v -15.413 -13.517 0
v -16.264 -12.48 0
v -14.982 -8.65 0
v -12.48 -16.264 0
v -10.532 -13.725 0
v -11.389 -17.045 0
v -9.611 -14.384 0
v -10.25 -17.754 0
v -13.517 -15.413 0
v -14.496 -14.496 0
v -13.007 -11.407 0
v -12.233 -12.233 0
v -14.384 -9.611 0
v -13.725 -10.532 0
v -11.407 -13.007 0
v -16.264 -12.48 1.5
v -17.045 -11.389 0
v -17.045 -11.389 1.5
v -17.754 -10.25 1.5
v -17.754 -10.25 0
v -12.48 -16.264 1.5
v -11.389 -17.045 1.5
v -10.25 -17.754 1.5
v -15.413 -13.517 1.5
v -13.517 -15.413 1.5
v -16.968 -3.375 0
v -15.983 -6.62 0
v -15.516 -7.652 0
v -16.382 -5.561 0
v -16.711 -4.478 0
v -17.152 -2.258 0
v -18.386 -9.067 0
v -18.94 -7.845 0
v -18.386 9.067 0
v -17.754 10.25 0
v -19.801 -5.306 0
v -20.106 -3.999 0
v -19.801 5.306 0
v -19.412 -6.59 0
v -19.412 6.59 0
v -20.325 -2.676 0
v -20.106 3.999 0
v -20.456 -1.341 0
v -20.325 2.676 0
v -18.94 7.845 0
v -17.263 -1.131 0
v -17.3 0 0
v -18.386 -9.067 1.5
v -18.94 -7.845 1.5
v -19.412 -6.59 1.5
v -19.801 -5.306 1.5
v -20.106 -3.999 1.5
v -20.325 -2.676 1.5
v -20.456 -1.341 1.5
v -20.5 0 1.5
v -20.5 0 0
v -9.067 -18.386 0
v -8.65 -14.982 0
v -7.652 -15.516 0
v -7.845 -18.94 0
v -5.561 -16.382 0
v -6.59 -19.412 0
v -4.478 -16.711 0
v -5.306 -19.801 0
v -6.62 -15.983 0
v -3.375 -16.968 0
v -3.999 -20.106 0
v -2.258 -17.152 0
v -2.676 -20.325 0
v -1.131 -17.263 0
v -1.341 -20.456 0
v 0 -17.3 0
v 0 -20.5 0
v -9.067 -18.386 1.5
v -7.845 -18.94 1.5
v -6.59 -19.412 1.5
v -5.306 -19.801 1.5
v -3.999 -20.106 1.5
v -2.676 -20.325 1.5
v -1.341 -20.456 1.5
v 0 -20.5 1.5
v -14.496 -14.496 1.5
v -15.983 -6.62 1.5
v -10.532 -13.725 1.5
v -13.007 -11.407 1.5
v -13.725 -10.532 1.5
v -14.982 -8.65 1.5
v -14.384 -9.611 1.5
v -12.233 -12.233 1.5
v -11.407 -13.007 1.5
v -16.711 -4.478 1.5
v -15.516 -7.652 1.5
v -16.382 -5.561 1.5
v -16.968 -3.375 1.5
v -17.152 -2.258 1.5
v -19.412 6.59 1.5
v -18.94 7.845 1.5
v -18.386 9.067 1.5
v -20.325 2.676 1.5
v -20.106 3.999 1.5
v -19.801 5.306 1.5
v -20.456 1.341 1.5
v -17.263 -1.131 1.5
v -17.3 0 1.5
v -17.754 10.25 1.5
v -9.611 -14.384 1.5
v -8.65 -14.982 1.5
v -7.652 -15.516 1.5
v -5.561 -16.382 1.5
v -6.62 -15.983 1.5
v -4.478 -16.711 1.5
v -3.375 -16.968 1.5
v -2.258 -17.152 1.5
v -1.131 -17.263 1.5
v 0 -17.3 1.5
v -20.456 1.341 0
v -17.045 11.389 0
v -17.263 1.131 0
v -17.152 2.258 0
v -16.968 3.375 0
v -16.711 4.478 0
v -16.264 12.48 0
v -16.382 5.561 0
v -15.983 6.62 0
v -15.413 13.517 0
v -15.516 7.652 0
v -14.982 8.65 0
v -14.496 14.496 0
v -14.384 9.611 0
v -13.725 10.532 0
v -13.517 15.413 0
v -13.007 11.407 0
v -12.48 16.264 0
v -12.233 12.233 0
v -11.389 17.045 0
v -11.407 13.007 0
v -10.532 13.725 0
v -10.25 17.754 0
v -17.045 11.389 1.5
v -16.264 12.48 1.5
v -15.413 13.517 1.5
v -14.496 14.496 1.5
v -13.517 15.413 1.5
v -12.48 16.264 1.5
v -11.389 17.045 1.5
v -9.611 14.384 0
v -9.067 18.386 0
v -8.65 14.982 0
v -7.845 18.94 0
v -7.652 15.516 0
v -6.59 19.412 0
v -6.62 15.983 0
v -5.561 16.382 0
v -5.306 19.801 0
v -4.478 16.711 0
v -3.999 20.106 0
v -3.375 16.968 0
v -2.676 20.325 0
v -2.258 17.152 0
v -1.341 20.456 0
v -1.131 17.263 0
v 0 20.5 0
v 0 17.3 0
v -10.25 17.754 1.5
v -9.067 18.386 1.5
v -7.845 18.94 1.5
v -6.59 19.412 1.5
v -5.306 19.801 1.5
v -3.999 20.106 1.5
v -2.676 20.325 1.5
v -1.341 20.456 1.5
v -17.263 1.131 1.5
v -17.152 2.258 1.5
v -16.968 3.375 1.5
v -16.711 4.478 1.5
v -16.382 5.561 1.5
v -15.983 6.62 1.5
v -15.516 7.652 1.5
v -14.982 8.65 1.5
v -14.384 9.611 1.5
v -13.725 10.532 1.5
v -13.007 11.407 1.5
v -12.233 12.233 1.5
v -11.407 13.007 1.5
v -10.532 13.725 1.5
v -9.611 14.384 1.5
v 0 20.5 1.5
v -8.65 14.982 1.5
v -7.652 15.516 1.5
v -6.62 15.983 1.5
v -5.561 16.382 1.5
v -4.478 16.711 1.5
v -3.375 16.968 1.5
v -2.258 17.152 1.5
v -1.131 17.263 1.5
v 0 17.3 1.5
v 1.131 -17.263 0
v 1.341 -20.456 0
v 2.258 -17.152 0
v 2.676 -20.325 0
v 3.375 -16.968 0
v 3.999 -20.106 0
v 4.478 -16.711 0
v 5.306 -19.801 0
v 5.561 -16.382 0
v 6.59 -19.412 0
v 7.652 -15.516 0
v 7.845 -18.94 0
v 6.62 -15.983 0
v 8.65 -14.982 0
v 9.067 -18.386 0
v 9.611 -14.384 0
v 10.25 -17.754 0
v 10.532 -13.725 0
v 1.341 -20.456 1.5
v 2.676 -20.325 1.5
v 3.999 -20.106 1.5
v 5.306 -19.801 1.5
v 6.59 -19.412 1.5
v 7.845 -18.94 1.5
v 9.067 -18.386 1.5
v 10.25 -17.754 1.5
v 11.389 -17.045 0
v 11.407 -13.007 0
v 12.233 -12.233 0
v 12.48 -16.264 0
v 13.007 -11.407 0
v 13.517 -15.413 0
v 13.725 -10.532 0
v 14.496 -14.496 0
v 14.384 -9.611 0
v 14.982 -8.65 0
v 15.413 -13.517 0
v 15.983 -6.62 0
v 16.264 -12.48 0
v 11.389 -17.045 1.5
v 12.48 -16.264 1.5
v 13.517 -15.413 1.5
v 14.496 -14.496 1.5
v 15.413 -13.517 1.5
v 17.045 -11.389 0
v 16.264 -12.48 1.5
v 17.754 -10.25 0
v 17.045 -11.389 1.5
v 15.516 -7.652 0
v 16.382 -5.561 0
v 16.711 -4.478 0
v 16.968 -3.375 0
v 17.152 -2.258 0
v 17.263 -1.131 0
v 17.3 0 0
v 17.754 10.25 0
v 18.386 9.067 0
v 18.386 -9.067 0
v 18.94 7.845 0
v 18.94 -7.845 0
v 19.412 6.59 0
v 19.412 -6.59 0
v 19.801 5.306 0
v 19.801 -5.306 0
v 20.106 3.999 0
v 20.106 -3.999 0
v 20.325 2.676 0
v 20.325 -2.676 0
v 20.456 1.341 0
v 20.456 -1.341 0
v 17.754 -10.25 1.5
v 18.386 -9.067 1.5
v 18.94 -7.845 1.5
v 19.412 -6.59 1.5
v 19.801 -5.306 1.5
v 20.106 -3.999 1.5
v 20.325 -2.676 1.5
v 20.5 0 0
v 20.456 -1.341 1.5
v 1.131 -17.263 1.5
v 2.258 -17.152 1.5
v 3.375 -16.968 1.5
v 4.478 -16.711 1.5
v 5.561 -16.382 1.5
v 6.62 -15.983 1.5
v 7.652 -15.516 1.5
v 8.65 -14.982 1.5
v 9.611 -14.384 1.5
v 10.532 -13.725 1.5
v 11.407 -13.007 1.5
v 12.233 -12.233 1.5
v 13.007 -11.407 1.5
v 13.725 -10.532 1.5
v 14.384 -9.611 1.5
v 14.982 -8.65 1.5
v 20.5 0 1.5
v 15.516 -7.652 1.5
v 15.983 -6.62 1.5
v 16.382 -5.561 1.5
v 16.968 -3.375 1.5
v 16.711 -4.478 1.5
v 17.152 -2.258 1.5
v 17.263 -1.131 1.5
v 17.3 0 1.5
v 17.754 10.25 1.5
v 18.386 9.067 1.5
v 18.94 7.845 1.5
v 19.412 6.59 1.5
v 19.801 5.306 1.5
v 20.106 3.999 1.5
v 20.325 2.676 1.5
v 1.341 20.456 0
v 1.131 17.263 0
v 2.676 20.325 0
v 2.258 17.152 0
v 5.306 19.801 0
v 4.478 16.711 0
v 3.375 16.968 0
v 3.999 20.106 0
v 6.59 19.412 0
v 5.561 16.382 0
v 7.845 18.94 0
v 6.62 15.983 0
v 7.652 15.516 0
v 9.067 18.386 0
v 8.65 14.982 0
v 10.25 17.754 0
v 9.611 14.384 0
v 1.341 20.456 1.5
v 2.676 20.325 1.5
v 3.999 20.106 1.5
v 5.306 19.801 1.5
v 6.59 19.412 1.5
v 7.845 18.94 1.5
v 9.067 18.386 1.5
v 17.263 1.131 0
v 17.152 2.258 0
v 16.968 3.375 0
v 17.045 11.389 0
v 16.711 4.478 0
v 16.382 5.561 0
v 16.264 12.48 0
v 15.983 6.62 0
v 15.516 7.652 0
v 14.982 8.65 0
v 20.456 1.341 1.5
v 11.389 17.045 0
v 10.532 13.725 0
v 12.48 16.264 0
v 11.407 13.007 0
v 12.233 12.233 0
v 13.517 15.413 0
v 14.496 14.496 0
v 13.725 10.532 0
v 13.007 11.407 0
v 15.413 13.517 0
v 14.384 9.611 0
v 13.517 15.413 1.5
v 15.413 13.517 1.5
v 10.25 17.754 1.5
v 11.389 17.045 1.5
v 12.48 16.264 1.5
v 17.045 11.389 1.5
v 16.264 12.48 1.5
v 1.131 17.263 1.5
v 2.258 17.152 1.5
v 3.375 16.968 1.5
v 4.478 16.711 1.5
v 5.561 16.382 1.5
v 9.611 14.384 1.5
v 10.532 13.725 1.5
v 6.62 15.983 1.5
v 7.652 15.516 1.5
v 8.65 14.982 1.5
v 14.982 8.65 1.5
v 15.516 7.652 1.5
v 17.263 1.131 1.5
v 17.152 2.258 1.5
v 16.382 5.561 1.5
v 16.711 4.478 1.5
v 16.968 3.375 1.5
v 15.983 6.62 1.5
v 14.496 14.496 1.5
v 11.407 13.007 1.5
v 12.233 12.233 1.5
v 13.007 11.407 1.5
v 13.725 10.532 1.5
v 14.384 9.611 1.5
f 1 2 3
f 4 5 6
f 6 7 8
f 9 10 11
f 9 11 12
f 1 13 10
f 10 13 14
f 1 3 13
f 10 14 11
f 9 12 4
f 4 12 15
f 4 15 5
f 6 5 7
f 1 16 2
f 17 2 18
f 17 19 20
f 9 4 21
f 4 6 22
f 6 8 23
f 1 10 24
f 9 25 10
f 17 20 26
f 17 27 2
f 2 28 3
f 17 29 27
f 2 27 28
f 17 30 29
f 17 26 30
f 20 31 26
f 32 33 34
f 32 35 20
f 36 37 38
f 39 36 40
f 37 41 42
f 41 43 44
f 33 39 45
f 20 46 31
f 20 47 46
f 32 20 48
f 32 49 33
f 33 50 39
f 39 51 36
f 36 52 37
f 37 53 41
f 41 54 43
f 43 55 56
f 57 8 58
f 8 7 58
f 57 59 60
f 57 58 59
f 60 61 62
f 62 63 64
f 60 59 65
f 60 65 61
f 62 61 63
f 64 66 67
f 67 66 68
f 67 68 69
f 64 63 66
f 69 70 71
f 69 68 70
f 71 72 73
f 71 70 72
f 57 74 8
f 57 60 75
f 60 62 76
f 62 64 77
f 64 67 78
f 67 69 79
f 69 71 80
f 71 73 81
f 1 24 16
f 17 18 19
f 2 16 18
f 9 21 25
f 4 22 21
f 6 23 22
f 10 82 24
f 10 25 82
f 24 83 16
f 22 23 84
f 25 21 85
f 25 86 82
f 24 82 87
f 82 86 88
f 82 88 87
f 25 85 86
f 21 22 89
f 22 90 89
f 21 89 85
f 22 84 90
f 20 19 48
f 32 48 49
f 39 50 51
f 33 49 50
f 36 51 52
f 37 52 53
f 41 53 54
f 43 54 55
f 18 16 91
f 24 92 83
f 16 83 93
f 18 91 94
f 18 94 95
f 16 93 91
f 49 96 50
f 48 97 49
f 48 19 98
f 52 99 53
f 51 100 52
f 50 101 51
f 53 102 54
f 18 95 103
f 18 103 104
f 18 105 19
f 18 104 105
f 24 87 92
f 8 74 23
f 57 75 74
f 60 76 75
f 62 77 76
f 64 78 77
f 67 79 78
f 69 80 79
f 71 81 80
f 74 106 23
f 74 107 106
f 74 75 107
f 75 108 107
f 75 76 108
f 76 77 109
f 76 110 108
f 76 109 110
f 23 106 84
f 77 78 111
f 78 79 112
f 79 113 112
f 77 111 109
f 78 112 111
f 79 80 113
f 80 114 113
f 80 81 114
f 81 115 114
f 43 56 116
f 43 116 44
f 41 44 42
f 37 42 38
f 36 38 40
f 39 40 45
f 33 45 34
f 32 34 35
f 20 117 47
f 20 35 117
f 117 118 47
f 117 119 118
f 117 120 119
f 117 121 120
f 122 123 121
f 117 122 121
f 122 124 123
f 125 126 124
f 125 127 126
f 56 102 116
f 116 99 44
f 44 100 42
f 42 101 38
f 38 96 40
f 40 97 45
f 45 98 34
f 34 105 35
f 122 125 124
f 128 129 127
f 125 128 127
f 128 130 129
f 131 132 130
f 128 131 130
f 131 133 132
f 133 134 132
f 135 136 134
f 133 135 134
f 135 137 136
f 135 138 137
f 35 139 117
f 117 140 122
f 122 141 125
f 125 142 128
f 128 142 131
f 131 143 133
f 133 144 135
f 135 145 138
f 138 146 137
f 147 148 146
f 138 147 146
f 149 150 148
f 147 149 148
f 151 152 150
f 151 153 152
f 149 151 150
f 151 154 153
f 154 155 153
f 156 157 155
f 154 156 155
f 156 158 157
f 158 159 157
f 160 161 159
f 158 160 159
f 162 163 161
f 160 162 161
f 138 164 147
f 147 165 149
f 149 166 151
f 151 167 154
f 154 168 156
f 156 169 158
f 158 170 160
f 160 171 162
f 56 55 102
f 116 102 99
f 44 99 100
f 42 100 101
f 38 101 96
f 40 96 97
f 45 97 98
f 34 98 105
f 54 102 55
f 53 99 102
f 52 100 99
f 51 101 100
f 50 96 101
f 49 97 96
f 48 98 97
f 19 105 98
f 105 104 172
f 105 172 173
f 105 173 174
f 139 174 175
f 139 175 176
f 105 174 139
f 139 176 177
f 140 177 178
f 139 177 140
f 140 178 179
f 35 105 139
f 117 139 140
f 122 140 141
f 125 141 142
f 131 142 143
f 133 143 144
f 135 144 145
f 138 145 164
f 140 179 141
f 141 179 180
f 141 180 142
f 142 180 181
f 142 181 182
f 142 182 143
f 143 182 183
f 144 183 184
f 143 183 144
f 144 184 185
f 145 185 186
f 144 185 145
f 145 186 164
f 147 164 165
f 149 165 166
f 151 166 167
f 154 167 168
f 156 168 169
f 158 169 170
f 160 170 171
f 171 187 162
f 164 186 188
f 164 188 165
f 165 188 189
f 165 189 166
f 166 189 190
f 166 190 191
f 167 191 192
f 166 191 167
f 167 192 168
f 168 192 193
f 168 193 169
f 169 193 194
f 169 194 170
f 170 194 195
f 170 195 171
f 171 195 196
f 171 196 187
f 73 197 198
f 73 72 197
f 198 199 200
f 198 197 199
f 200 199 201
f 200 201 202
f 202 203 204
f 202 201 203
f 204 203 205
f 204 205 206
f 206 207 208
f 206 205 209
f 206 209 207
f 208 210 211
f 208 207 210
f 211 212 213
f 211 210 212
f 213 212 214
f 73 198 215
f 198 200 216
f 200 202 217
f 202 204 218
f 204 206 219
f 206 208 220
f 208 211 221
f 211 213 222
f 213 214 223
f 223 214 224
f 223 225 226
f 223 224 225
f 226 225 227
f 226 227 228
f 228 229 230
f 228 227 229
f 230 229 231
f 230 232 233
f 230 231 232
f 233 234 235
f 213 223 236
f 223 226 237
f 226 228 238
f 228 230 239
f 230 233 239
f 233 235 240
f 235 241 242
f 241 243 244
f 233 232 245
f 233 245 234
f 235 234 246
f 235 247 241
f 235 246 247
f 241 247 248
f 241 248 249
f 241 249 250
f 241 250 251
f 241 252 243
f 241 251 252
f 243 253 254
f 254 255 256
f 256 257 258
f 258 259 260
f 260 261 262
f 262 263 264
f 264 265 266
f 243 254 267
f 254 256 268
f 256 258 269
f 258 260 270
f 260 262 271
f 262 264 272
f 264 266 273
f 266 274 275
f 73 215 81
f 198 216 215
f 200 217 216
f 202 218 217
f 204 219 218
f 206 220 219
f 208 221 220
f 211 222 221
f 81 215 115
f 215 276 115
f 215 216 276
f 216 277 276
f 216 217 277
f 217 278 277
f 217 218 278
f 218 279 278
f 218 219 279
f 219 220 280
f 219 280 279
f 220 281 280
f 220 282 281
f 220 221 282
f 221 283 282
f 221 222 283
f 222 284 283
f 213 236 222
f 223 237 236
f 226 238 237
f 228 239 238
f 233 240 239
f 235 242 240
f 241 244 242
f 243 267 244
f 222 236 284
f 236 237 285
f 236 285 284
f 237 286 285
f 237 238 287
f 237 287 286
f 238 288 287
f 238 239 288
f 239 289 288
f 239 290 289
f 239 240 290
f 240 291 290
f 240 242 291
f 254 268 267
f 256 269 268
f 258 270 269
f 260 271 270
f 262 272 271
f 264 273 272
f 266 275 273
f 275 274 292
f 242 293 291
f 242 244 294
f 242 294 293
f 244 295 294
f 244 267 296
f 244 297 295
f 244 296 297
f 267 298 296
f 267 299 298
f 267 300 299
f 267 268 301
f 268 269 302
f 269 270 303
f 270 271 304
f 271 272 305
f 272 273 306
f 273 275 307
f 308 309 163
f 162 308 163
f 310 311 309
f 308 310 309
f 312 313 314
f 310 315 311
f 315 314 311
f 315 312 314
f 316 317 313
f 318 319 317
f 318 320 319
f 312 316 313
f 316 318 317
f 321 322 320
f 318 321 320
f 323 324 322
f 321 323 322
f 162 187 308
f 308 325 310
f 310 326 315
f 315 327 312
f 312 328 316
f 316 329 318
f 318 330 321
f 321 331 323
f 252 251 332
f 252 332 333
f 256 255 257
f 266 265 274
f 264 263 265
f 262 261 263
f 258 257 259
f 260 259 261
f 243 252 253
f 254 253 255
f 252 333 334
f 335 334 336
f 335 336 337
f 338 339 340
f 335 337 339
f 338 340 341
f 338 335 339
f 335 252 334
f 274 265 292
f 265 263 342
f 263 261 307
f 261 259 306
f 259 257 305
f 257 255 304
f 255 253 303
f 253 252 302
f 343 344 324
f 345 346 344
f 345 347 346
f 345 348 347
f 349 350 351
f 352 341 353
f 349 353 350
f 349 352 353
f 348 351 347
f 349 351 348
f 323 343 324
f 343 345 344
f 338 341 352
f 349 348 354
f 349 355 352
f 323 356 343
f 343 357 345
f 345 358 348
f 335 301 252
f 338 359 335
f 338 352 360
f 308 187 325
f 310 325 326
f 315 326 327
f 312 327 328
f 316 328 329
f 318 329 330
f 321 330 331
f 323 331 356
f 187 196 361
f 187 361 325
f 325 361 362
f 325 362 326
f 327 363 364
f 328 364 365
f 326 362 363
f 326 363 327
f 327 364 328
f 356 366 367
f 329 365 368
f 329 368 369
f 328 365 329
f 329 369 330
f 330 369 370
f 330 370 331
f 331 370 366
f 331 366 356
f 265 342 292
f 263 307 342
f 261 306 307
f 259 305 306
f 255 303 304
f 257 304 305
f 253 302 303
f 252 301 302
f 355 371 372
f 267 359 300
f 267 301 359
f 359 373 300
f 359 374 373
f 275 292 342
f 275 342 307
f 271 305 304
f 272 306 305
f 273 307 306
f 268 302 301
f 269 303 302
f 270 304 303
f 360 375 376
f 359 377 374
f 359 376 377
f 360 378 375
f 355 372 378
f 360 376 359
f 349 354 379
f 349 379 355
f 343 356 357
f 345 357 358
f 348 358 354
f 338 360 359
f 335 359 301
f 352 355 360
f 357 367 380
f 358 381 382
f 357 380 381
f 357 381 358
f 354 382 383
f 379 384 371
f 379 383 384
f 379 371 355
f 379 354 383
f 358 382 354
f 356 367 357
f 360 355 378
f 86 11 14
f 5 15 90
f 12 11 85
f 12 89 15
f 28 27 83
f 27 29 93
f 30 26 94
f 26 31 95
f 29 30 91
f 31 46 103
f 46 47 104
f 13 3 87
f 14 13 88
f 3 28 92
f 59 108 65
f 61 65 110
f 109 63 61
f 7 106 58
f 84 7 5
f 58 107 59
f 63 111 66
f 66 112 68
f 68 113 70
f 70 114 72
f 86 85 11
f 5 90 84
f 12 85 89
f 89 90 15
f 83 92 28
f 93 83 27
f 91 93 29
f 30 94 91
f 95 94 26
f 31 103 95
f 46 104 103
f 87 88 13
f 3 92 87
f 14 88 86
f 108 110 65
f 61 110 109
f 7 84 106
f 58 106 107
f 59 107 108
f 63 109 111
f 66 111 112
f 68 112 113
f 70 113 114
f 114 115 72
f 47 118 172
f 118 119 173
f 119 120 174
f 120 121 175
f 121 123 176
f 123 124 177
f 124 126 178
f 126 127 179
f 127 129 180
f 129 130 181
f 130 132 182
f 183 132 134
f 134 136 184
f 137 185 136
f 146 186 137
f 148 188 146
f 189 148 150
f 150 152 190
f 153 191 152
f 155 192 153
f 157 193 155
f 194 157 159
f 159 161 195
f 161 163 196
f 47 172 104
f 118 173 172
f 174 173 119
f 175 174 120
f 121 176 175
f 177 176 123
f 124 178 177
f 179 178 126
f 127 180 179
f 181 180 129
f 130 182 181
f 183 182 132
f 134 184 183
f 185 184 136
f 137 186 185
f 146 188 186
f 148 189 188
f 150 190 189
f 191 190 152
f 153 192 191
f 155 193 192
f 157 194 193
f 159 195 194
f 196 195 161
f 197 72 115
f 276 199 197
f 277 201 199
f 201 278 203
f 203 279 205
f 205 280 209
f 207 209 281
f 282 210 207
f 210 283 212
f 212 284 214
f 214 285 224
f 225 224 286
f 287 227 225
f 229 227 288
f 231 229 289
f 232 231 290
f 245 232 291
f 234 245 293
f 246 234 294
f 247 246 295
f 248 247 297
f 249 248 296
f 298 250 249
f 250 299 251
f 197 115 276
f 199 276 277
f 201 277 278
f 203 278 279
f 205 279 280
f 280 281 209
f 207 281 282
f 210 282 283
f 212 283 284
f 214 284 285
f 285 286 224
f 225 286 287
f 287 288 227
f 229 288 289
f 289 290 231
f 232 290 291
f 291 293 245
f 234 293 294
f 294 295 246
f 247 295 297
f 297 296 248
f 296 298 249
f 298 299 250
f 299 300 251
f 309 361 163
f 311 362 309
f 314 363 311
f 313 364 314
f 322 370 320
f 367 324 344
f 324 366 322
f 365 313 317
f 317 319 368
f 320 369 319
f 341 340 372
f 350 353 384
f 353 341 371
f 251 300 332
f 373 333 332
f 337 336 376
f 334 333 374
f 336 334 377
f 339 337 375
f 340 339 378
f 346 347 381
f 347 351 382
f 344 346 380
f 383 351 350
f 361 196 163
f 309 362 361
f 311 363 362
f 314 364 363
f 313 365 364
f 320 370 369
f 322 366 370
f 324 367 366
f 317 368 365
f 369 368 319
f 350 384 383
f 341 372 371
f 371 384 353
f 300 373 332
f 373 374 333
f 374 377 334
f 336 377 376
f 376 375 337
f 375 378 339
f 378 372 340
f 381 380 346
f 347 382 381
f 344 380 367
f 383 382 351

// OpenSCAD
// file: params.scad
// =====================================================================
//  Boldfit 2.2 L Gallon bottle – replacement cap system
//  SHARED PARAMETERS  (edit THIS file only; every design reads from it)
// =====================================================================
//
//  !!!  The neck numbers below are PLACEHOLDER GUESSES for a generic   !!!
//  !!!  Chinese 2.2 L gym jug.  Replace them with caliper readings     !!!
//  !!!  from the real bottle before printing a final cap.              !!!
//  See ../README.md  ->  "How to measure the neck".
//
// All dimensions in millimetres.

// ---------- BOTTLE NECK (measure these) ----------
neck_major_d   = 60.0;   // outside diameter ACROSS the thread crests
neck_minor_d   = 56.0;   // outside diameter at thread ROOT (bare neck wall)
mouth_id       = 50.0;   // inside diameter of the opening
neck_height    = 14.0;   // top lip  -> top of the shoulder / collar ring
thread_pitch   = 6.0;    // crest-to-crest spacing measured ALONG the axis
thread_starts  = 2;      // 1 = single start, 2 = two parallel threads (count where threads begin at the lip)
thread_turns   = 1.25;   // how many times ONE thread goes round the neck
thread_start_z = 2.0;    // distance from the top lip down to where the thread begins
thread_crest_w = 1.6;    // flat width of the thread crest (axial)
thread_root_w  = 3.6;    // width of the thread at its root (axial)

// ---------- FIT / PRINTER TUNING ----------
radial_clear   = 0.30;   // extra radius in the cap bore.  FDM 0.4 nozzle: 0.25-0.40
axial_clear    = 0.25;   // extra gap each side of the thread flank
wall           = 2.4;    // cap side wall (6 perimeters @ 0.4 mm)
top_t          = 3.0;    // cap top thickness
gasket_t       = 2.0;    // TPU / silicone gasket thickness
gasket_pocket  = 0.8;    // SHALLOW locating pocket – open, wipeable, gasket lifts out
skirt_extra    = 1.5;    // how far the skirt reaches below the thread
$fn            = 96;    // circular resolution (96 = 2 mm facets on a 60 mm cap, plenty for FDM)

// ---------- DERIVED (do not edit) ----------
thread_h       = (neck_major_d - neck_minor_d) / 2;            // radial height of the thread
thread_len     = thread_pitch * thread_starts * thread_turns;  // axial length ONE start covers
cap_bore_d     = neck_major_d + 2 * radial_clear;
cap_od         = cap_bore_d + 2 * wall;
skirt_h        = thread_start_z + thread_len + skirt_extra;
// file: threads.scad
// =====================================================================
//  threads.scad  –  helical thread sweep + bottle-neck model
//  Pure OpenSCAD, no external libraries needed.
// =====================================================================
include <params.scad>

// A right-hand helical thread of trapezoidal section.
//   r_root   : radius where the thread meets the core
//   r_crest  : radius of the crest
//   z_top    : z of the THREAD CENTRE at its upper end (near the lip)
//   z_bottom : z of the thread centre at its lower end
//   starts   : number of starts (spaced 360/starts apart)
module helix_thread(r_root, r_crest, pitch, starts, z_top, z_bottom,
                    crest_w, root_w, steps_per_turn = 96, overlap = 0.5) {
    lead  = pitch * starts;
    turns = (z_top - z_bottom) / lead;
    n     = max(2, ceil(turns * steps_per_turn));
    ri    = r_root - overlap;                    // bury the root inside the core
    for (s = [0 : starts - 1]) {
        a0 = s * 360 / starts;
        pts = [ for (i = [0 : n])
                let (a = i * 360 * turns / n, z = z_bottom + a / 360 * lead,
                     c = cos(a + a0), sn = sin(a + a0))
                each [ [ri * c,      ri * sn,      z - root_w  / 2],
                       [r_crest * c, r_crest * sn, z - crest_w / 2],
                       [r_crest * c, r_crest * sn, z + crest_w / 2],
                       [ri * c,      ri * sn,      z + root_w  / 2] ] ];
        // side quads are split into triangles: the helix makes them non-planar
        faces = concat(
            [[3, 2, 1, 0]],
            [ for (i = [0 : n - 1], j = [0 : 3])
                let (b = 4 * i, k = (j + 1) % 4) each [[b + k, b + k + 4, b + j + 4], [b + k, b + j + 4, b + j]] ],
            [[4 * n, 4 * n + 1, 4 * n + 2, 4 * n + 3]] );
        polyhedron(points = pts, faces = faces, convexity = 10);
    }
}

// The bottle neck in its natural frame: lip (top rim) at z = 0, bottle below.
//   clear_r / clear_z : grow the neck radially / axially – used when this
//                       model is SUBTRACTED from a cap to create the female thread.
//   thread_extend     : extra thread length BELOW the real thread so the groove
//                       in the cap runs all the way out of the skirt.
//   extra_core        : extend the core cylinder (through the cap's open end)
module neck(clear_r = 0, clear_z = 0, thread_extend = 0, extra_core = 0, show_bore = false) {
    rmin = neck_minor_d / 2 + clear_r;
    rmaj = neck_major_d / 2 + clear_r;
    z_top    = -thread_start_z - thread_crest_w / 2;
    z_bottom = z_top - thread_len - thread_extend;
    difference() {
        union() {
            // core
            translate([0, 0, -neck_height - extra_core])
                cylinder(r = rmin, h = neck_height + extra_core);
            // thread
            helix_thread(rmin, rmaj, thread_pitch, thread_starts, z_top, z_bottom,
                         thread_crest_w + 2 * clear_z, thread_root_w + 2 * clear_z);
        }
        if (show_bore)
            translate([0, 0, -neck_height - extra_core - 1])
                cylinder(d = mouth_id, h = neck_height + extra_core + 2);
    }
}

// Reference neck (what we THINK the bottle looks like) – render this to sanity
// check your measurements against the real bottle.
module neck_reference() {
    neck(show_bore = true);
    // shoulder/collar hint
    translate([0, 0, -neck_height - 3]) cylinder(d = neck_major_d + 14, h = 3);
}
// file: 04_port_common.scad
// Shared numbers for the PORT cap (main cap, plug, gasket)
head_d         = 42.0;   // plug head diameter
head_h         = 5.0;    // head thickness above the gasket
head_sink      = 1.5;    // head counterbore depth in the main cap (gasket lives here)
head_clear     = 0.5;    // radial clearance head / counterbore
port_gasket_t  = 1.5;

port_minor_d   = 30.0;   // male plug thread root diameter
port_major_d   = 33.0;   // male plug thread crest diameter
port_pitch     = 3.0;
port_starts    = 2;      // 2-start: a quarter turn opens it
port_turns     = 1.0;
port_crest_w   = 0.8;
port_root_w    = 1.9;
port_thread_h  = (port_major_d - port_minor_d) / 2;
port_tube_wall = 2.4;
port_tube_od   = port_major_d + 2 * radial_clear + 2 * port_tube_wall;
port_len       = port_pitch * port_starts * port_turns;        // axial length one start covers
port_tube_h    = head_sink + 1.5 + port_len + 2.0 - top_t;     // tube below the cap ceiling
port_stem_len  = 1.5 + port_len + 2.0;                         // plug stem below the head

// Male thread of the plug in the plug's natural frame: head underside at z = 0,
// threaded stem pointing +z.  Thread starts 1.5 mm from the head.
module port_male_thread(clear_r = 0, clear_z = 0, extend = 0) {
    rmin = port_minor_d / 2 + clear_r;
    rmaj = port_major_d / 2 + clear_r;
    z_bottom = 1.5 + port_crest_w / 2;             // near the head
    z_top    = z_bottom + port_len + extend;       // towards the stem tip
    union() {
        cylinder(r = rmin, h = z_top + 1);
        helix_thread(rmin, rmaj, port_pitch, port_starts, z_top, z_bottom,
                     port_crest_w + 2 * clear_z, port_root_w + 2 * clear_z);
    }
}
// file: 03_flip_common.scad
// Shared numbers + hinge/latch modules for the FLIP cap (base and lid)
spout_d      = 22;      // drinking hole diameter
spout_off    = 10;      // hole centre offset from cap centre (towards +x, away from hinge)
spout_boss_h = 2.5;     // extra ring under the ceiling so the plug has a 5 mm sealing land
pin_hole_d   = 2.0;     // clearance hole for a 1.75 mm filament pin
ear_w        = 4;       // hinge ear thickness
ear_gap      = 12.6;    // gap between ears (lid knuckle 12 mm + clearance)
ear_r        = 4;       // ear radius around the pin
hinge_out    = 3.0;     // pin axis distance outside the skirt wall
latch_w      = 12;
latch_nub    = 1.0;     // how far the latch nub protrudes beyond the skirt (snap depth 0.7)
nub_top_z    = 1.5;     // (base frame) where the nub ramp starts at the wall
nub_bot_z    = 4.0;     // (base frame) flat bearing face of the nub
lid_t        = 3.0;

module hinge_ears() {
    for (s = [-1, 1])
        translate([-(cap_od / 2 + hinge_out), s * (ear_gap / 2 + ear_w / 2), 0])
            hull() {
                translate([0, 0, ear_r]) rotate([90, 0, 0]) cylinder(r = ear_r, h = ear_w, center = true);
                translate([hinge_out + 1.5, 0, ear_r]) cube([3, ear_w, 2 * ear_r], center = true);
            }
}
// nub: flat bottom face (bearing), ramped top face (lead-in for closing)
module latch_nub() {
    R = cap_od / 2;
    hull() {
        translate([R - 0.6, -latch_w / 2, nub_top_z]) cube([0.6, latch_w, nub_bot_z - nub_top_z]);
        translate([R + latch_nub - 0.3, -latch_w / 2 + 1, nub_bot_z - 0.8]) cube([0.3, latch_w - 2, 0.8]);
    }
}
// file: cap_lib.scad
// =====================================================================
//  cap_lib.scad – shared cap body (female thread, gasket seat, grip, loop)
//  Every cap is modelled PRINT-READY: outer top face on z = 0 (the bed),
//  open skirt pointing UP.  No supports needed.
//
//  Hygiene rules baked in:
//   • thread groove runs OUT of the skirt – no dead-end helix to trap water
//   • gasket seat is a 0.8 mm open pocket with chamfered edge – gasket
//     lifts out, nothing hides behind it
//   • every inside corner is chamfered, outer grip is scallops (wipeable)
// =====================================================================
include <threads.scad>

z_lip = top_t + gasket_t;            // where the bottle lip rests (gasket uncompressed)
cap_h = z_lip + skirt_h;             // total cap height

// ---- grip ------------------------------------------------------------
grip_count   = 24;
scallop_d    = 5.0;        // scallop cutter diameter
scallop_bite = 0.9;        // how deep the scallop cuts into the wall

module grip_outer_solid(h = cap_h) {
    difference() {
        cylinder(d = cap_od, h = h);
        for (i = [0 : grip_count - 1]) rotate(i * 360 / grip_count)
            translate([cap_od / 2 + scallop_d / 2 - scallop_bite, 0, 1.6])
                cylinder(d = scallop_d, h = h);
        // bed-side edge chamfer for a clean first layer and a soft rim
        rotate_extrude() translate([cap_od / 2, 0]) rotate(45) square([1.7, 1.7], center = true);
        // skirt-mouth outer chamfer
        rotate_extrude() translate([cap_od / 2, h]) rotate(45) square([1.2, 1.2], center = true);
    }
}

// ---- the female thread + gasket seat, as a NEGATIVE ------------------
module cap_negative() {
    // bottle neck with clearances, flipped so the lip sits at z_lip
    translate([0, 0, z_lip]) rotate([180, 0, 0])
        neck(clear_r = radial_clear, clear_z = axial_clear,
             thread_extend = skirt_extra + 2 * thread_pitch, extra_core = 30);
    // shallow gasket seat with a 45° chamfered rim (no sharp inside corner)
    translate([0, 0, top_t]) cylinder(d = neck_minor_d + 1.2, h = gasket_pocket + 0.01);
    translate([0, 0, top_t + gasket_pocket - 0.01])
        cylinder(d1 = neck_minor_d + 1.2, d2 = neck_minor_d + 1.2 + 2 * gasket_pocket, h = gasket_pocket);
    // chamfer the ledge-to-bore corner
    translate([0, 0, z_lip - 1.0]) cylinder(d1 = cap_bore_d - 2.0, d2 = cap_bore_d, h = 1.01);
    // lead-in chamfer at the skirt mouth so the cap finds the thread easily
    translate([0, 0, cap_h - 1.2]) cylinder(d1 = cap_bore_d, d2 = cap_bore_d + 2.4, h = 1.21);
}

// ---- complete plain cap body ----------------------------------------
module cap_body() {
    difference() {
        grip_outer_solid();
        cap_negative();
    }
}

// ---- D-loop for the Boldfit strap / a carabiner ---------------------
loop_w  = 16;    // inside width
loop_t  = 4;     // bar thickness
loop_ht = 8;     // height (lies flat on the bed, beside the cap)

module d_loop() {
    translate([cap_od / 2 - 1.5, 0, 0]) difference() {
        hull() {
            translate([0, -(loop_w / 2 + loop_t), 0]) cube([1, loop_w + 2 * loop_t, loop_ht]);
            translate([loop_w / 2 + loop_t, 0, 0]) cylinder(d = loop_w + 2 * loop_t, h = loop_ht);
        }
        hull() {
            translate([loop_t, -loop_w / 2, -1]) cube([1, loop_w, loop_ht + 2]);
            translate([loop_w / 2 + loop_t, 0, -1]) cylinder(d = loop_w, h = loop_ht + 2);
        }
    }
}
// main file
// 04c  "PORT" – flat TPU gasket under the plug head (print in TPU 95A)
include <parts.scad>
port_gasket();
